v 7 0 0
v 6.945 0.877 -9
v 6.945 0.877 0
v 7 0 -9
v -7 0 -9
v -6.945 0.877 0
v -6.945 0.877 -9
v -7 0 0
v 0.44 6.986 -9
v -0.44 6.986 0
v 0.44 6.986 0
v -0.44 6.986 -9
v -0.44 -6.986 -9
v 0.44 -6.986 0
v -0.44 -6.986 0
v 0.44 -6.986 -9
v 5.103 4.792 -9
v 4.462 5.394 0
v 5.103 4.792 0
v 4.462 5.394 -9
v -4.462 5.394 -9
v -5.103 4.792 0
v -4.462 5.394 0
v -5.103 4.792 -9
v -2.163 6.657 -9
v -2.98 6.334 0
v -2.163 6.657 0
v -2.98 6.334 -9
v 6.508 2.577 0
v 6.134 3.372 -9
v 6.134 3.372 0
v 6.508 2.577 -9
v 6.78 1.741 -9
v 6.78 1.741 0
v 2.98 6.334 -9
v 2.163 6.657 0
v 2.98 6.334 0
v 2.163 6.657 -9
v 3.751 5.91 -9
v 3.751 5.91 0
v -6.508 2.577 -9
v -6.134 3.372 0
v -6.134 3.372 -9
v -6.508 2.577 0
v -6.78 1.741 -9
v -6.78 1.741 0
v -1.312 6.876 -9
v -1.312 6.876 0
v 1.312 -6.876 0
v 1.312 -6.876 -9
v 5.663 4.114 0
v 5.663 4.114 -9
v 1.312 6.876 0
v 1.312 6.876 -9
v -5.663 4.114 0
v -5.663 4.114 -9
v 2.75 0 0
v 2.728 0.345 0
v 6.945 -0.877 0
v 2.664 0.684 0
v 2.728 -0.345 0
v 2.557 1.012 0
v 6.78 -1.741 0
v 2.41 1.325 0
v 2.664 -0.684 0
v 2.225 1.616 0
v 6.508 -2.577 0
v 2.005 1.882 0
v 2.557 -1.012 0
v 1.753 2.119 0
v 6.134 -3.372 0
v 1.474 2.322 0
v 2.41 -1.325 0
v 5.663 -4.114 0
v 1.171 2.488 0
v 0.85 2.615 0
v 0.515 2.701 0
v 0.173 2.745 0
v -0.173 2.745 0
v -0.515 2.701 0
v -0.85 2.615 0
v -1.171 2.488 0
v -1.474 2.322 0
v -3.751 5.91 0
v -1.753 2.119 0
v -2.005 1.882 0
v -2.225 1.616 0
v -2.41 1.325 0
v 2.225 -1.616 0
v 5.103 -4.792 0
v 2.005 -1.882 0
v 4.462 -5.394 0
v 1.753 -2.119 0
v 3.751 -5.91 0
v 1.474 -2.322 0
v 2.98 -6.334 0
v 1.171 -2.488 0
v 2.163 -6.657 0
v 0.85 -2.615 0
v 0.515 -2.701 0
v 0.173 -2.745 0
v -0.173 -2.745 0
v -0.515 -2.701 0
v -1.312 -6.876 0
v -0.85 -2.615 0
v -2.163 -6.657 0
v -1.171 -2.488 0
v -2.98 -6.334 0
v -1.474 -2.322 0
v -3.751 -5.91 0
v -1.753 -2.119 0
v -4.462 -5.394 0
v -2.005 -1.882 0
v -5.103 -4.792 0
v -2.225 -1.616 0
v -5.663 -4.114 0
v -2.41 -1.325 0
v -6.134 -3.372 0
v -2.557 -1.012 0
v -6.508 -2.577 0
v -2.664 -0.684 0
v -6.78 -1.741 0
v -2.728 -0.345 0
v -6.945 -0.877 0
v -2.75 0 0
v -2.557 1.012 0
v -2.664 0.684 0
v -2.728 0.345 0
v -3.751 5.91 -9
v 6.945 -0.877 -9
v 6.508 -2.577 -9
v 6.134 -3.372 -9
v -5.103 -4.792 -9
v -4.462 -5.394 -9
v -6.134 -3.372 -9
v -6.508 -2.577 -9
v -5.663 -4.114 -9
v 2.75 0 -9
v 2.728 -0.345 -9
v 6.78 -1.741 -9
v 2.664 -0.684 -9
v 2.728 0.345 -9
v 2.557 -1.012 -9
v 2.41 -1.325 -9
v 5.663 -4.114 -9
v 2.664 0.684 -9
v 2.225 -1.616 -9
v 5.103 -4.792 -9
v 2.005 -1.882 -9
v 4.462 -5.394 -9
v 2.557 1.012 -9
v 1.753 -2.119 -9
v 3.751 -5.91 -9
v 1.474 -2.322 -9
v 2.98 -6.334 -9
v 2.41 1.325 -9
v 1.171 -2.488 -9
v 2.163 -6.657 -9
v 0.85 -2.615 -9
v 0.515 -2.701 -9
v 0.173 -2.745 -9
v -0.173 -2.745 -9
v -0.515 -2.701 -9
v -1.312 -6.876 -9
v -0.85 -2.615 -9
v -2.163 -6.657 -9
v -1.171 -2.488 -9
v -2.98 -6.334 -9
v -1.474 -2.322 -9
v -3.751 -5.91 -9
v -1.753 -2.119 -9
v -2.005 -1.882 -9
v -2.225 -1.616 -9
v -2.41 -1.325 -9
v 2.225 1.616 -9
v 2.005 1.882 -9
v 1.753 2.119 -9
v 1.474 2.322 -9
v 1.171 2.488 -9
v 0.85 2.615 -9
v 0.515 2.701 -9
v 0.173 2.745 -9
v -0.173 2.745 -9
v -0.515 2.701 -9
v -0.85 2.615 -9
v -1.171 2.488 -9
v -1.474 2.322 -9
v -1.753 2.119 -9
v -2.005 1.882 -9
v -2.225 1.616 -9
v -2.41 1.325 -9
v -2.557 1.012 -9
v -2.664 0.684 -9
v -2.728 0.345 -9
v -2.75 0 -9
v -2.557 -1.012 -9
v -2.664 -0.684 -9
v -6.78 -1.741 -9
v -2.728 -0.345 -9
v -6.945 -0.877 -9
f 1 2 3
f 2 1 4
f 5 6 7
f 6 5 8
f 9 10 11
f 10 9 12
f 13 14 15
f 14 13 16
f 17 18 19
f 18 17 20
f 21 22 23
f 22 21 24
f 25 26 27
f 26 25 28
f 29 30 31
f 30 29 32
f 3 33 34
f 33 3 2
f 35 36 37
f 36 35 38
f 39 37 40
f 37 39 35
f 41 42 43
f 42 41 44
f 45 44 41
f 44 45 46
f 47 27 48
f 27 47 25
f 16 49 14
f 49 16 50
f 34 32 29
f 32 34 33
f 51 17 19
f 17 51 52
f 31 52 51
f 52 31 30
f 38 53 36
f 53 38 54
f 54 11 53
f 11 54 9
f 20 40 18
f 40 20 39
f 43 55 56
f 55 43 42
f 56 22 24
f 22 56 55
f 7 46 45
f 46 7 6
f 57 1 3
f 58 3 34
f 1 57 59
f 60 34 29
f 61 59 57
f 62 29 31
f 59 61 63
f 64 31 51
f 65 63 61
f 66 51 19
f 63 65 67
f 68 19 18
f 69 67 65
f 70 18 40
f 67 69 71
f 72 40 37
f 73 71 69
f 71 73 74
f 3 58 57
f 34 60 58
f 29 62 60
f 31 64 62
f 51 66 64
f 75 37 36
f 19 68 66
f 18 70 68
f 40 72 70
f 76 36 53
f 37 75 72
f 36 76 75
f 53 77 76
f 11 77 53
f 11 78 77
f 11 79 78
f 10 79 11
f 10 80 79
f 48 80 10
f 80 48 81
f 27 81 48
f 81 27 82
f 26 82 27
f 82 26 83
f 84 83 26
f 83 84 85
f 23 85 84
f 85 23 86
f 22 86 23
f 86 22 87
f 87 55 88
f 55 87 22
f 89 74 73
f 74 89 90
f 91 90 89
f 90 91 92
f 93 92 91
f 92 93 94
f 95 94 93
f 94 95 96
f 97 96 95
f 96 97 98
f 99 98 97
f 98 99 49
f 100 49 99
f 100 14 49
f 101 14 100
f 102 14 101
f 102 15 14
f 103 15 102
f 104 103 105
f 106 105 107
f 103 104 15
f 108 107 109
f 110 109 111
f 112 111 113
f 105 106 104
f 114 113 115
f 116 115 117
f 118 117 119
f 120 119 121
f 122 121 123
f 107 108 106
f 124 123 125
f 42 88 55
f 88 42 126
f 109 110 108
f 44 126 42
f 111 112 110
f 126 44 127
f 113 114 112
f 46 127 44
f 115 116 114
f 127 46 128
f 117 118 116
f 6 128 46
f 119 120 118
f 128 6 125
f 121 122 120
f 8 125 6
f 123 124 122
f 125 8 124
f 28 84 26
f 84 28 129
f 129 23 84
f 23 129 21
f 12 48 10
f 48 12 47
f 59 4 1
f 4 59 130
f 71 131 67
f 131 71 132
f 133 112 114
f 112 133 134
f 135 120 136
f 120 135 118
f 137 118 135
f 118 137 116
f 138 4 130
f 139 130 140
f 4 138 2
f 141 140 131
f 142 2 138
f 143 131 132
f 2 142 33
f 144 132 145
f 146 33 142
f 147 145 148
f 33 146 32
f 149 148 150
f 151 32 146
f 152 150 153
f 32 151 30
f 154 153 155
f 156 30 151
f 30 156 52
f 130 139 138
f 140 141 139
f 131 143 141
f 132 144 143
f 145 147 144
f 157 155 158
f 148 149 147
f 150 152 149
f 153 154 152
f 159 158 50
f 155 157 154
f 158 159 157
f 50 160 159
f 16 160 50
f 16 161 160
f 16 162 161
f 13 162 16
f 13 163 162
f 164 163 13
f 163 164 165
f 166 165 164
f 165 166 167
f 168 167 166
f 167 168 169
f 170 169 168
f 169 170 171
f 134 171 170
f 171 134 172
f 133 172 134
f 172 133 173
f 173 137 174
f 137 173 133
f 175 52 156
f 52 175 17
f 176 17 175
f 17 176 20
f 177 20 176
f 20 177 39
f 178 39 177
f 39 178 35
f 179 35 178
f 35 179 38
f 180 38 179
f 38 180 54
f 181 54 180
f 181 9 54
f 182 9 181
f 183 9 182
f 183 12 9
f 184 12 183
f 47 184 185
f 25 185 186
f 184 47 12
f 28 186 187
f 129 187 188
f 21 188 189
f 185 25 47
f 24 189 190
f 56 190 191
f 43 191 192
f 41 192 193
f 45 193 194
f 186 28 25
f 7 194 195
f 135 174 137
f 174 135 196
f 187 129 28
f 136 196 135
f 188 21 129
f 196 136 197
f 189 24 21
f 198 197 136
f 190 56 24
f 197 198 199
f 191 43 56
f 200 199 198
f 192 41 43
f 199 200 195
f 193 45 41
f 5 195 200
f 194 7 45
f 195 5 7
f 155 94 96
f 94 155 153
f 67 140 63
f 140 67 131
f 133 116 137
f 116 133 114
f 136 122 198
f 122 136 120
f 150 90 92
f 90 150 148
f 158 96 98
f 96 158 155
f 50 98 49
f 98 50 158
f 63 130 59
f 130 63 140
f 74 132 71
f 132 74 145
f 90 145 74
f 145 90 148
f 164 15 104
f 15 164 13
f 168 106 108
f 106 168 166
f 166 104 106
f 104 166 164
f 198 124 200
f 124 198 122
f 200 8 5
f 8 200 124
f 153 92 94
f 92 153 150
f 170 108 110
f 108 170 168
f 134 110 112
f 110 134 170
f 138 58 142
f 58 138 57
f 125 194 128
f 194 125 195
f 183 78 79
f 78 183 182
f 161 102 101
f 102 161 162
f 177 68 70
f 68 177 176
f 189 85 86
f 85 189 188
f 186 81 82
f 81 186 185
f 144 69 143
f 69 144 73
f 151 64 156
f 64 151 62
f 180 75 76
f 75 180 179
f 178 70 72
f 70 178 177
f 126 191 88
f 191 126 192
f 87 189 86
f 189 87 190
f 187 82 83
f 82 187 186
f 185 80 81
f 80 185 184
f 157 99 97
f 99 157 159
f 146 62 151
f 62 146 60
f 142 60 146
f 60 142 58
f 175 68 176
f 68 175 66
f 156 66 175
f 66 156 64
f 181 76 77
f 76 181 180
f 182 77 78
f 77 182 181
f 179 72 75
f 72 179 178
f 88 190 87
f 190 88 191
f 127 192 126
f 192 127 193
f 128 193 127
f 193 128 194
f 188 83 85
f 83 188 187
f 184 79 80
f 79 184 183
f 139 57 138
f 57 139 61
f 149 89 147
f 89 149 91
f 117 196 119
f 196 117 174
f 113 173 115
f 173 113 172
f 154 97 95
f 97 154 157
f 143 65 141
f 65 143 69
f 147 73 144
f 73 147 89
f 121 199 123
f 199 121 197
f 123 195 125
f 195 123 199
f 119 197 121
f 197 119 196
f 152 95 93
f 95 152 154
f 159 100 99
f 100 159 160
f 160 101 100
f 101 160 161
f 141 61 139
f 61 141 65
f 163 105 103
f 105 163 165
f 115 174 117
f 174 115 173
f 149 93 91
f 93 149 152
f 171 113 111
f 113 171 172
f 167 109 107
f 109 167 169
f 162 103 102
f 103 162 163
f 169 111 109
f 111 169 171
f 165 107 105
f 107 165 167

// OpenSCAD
$fn = 50;


difference() {
	union() {
		translate(v = [0, 0, -9.0000000000]) {
			cylinder(h = 9, r = 7.0000000000);
		}
		cylinder(h = 0, r = 13.0000000000);
	}
	union() {
		#translate(v = [0, 0, -9]) {
			cylinder(h = 9, r = 2.7500000000);
		}
	}
}
